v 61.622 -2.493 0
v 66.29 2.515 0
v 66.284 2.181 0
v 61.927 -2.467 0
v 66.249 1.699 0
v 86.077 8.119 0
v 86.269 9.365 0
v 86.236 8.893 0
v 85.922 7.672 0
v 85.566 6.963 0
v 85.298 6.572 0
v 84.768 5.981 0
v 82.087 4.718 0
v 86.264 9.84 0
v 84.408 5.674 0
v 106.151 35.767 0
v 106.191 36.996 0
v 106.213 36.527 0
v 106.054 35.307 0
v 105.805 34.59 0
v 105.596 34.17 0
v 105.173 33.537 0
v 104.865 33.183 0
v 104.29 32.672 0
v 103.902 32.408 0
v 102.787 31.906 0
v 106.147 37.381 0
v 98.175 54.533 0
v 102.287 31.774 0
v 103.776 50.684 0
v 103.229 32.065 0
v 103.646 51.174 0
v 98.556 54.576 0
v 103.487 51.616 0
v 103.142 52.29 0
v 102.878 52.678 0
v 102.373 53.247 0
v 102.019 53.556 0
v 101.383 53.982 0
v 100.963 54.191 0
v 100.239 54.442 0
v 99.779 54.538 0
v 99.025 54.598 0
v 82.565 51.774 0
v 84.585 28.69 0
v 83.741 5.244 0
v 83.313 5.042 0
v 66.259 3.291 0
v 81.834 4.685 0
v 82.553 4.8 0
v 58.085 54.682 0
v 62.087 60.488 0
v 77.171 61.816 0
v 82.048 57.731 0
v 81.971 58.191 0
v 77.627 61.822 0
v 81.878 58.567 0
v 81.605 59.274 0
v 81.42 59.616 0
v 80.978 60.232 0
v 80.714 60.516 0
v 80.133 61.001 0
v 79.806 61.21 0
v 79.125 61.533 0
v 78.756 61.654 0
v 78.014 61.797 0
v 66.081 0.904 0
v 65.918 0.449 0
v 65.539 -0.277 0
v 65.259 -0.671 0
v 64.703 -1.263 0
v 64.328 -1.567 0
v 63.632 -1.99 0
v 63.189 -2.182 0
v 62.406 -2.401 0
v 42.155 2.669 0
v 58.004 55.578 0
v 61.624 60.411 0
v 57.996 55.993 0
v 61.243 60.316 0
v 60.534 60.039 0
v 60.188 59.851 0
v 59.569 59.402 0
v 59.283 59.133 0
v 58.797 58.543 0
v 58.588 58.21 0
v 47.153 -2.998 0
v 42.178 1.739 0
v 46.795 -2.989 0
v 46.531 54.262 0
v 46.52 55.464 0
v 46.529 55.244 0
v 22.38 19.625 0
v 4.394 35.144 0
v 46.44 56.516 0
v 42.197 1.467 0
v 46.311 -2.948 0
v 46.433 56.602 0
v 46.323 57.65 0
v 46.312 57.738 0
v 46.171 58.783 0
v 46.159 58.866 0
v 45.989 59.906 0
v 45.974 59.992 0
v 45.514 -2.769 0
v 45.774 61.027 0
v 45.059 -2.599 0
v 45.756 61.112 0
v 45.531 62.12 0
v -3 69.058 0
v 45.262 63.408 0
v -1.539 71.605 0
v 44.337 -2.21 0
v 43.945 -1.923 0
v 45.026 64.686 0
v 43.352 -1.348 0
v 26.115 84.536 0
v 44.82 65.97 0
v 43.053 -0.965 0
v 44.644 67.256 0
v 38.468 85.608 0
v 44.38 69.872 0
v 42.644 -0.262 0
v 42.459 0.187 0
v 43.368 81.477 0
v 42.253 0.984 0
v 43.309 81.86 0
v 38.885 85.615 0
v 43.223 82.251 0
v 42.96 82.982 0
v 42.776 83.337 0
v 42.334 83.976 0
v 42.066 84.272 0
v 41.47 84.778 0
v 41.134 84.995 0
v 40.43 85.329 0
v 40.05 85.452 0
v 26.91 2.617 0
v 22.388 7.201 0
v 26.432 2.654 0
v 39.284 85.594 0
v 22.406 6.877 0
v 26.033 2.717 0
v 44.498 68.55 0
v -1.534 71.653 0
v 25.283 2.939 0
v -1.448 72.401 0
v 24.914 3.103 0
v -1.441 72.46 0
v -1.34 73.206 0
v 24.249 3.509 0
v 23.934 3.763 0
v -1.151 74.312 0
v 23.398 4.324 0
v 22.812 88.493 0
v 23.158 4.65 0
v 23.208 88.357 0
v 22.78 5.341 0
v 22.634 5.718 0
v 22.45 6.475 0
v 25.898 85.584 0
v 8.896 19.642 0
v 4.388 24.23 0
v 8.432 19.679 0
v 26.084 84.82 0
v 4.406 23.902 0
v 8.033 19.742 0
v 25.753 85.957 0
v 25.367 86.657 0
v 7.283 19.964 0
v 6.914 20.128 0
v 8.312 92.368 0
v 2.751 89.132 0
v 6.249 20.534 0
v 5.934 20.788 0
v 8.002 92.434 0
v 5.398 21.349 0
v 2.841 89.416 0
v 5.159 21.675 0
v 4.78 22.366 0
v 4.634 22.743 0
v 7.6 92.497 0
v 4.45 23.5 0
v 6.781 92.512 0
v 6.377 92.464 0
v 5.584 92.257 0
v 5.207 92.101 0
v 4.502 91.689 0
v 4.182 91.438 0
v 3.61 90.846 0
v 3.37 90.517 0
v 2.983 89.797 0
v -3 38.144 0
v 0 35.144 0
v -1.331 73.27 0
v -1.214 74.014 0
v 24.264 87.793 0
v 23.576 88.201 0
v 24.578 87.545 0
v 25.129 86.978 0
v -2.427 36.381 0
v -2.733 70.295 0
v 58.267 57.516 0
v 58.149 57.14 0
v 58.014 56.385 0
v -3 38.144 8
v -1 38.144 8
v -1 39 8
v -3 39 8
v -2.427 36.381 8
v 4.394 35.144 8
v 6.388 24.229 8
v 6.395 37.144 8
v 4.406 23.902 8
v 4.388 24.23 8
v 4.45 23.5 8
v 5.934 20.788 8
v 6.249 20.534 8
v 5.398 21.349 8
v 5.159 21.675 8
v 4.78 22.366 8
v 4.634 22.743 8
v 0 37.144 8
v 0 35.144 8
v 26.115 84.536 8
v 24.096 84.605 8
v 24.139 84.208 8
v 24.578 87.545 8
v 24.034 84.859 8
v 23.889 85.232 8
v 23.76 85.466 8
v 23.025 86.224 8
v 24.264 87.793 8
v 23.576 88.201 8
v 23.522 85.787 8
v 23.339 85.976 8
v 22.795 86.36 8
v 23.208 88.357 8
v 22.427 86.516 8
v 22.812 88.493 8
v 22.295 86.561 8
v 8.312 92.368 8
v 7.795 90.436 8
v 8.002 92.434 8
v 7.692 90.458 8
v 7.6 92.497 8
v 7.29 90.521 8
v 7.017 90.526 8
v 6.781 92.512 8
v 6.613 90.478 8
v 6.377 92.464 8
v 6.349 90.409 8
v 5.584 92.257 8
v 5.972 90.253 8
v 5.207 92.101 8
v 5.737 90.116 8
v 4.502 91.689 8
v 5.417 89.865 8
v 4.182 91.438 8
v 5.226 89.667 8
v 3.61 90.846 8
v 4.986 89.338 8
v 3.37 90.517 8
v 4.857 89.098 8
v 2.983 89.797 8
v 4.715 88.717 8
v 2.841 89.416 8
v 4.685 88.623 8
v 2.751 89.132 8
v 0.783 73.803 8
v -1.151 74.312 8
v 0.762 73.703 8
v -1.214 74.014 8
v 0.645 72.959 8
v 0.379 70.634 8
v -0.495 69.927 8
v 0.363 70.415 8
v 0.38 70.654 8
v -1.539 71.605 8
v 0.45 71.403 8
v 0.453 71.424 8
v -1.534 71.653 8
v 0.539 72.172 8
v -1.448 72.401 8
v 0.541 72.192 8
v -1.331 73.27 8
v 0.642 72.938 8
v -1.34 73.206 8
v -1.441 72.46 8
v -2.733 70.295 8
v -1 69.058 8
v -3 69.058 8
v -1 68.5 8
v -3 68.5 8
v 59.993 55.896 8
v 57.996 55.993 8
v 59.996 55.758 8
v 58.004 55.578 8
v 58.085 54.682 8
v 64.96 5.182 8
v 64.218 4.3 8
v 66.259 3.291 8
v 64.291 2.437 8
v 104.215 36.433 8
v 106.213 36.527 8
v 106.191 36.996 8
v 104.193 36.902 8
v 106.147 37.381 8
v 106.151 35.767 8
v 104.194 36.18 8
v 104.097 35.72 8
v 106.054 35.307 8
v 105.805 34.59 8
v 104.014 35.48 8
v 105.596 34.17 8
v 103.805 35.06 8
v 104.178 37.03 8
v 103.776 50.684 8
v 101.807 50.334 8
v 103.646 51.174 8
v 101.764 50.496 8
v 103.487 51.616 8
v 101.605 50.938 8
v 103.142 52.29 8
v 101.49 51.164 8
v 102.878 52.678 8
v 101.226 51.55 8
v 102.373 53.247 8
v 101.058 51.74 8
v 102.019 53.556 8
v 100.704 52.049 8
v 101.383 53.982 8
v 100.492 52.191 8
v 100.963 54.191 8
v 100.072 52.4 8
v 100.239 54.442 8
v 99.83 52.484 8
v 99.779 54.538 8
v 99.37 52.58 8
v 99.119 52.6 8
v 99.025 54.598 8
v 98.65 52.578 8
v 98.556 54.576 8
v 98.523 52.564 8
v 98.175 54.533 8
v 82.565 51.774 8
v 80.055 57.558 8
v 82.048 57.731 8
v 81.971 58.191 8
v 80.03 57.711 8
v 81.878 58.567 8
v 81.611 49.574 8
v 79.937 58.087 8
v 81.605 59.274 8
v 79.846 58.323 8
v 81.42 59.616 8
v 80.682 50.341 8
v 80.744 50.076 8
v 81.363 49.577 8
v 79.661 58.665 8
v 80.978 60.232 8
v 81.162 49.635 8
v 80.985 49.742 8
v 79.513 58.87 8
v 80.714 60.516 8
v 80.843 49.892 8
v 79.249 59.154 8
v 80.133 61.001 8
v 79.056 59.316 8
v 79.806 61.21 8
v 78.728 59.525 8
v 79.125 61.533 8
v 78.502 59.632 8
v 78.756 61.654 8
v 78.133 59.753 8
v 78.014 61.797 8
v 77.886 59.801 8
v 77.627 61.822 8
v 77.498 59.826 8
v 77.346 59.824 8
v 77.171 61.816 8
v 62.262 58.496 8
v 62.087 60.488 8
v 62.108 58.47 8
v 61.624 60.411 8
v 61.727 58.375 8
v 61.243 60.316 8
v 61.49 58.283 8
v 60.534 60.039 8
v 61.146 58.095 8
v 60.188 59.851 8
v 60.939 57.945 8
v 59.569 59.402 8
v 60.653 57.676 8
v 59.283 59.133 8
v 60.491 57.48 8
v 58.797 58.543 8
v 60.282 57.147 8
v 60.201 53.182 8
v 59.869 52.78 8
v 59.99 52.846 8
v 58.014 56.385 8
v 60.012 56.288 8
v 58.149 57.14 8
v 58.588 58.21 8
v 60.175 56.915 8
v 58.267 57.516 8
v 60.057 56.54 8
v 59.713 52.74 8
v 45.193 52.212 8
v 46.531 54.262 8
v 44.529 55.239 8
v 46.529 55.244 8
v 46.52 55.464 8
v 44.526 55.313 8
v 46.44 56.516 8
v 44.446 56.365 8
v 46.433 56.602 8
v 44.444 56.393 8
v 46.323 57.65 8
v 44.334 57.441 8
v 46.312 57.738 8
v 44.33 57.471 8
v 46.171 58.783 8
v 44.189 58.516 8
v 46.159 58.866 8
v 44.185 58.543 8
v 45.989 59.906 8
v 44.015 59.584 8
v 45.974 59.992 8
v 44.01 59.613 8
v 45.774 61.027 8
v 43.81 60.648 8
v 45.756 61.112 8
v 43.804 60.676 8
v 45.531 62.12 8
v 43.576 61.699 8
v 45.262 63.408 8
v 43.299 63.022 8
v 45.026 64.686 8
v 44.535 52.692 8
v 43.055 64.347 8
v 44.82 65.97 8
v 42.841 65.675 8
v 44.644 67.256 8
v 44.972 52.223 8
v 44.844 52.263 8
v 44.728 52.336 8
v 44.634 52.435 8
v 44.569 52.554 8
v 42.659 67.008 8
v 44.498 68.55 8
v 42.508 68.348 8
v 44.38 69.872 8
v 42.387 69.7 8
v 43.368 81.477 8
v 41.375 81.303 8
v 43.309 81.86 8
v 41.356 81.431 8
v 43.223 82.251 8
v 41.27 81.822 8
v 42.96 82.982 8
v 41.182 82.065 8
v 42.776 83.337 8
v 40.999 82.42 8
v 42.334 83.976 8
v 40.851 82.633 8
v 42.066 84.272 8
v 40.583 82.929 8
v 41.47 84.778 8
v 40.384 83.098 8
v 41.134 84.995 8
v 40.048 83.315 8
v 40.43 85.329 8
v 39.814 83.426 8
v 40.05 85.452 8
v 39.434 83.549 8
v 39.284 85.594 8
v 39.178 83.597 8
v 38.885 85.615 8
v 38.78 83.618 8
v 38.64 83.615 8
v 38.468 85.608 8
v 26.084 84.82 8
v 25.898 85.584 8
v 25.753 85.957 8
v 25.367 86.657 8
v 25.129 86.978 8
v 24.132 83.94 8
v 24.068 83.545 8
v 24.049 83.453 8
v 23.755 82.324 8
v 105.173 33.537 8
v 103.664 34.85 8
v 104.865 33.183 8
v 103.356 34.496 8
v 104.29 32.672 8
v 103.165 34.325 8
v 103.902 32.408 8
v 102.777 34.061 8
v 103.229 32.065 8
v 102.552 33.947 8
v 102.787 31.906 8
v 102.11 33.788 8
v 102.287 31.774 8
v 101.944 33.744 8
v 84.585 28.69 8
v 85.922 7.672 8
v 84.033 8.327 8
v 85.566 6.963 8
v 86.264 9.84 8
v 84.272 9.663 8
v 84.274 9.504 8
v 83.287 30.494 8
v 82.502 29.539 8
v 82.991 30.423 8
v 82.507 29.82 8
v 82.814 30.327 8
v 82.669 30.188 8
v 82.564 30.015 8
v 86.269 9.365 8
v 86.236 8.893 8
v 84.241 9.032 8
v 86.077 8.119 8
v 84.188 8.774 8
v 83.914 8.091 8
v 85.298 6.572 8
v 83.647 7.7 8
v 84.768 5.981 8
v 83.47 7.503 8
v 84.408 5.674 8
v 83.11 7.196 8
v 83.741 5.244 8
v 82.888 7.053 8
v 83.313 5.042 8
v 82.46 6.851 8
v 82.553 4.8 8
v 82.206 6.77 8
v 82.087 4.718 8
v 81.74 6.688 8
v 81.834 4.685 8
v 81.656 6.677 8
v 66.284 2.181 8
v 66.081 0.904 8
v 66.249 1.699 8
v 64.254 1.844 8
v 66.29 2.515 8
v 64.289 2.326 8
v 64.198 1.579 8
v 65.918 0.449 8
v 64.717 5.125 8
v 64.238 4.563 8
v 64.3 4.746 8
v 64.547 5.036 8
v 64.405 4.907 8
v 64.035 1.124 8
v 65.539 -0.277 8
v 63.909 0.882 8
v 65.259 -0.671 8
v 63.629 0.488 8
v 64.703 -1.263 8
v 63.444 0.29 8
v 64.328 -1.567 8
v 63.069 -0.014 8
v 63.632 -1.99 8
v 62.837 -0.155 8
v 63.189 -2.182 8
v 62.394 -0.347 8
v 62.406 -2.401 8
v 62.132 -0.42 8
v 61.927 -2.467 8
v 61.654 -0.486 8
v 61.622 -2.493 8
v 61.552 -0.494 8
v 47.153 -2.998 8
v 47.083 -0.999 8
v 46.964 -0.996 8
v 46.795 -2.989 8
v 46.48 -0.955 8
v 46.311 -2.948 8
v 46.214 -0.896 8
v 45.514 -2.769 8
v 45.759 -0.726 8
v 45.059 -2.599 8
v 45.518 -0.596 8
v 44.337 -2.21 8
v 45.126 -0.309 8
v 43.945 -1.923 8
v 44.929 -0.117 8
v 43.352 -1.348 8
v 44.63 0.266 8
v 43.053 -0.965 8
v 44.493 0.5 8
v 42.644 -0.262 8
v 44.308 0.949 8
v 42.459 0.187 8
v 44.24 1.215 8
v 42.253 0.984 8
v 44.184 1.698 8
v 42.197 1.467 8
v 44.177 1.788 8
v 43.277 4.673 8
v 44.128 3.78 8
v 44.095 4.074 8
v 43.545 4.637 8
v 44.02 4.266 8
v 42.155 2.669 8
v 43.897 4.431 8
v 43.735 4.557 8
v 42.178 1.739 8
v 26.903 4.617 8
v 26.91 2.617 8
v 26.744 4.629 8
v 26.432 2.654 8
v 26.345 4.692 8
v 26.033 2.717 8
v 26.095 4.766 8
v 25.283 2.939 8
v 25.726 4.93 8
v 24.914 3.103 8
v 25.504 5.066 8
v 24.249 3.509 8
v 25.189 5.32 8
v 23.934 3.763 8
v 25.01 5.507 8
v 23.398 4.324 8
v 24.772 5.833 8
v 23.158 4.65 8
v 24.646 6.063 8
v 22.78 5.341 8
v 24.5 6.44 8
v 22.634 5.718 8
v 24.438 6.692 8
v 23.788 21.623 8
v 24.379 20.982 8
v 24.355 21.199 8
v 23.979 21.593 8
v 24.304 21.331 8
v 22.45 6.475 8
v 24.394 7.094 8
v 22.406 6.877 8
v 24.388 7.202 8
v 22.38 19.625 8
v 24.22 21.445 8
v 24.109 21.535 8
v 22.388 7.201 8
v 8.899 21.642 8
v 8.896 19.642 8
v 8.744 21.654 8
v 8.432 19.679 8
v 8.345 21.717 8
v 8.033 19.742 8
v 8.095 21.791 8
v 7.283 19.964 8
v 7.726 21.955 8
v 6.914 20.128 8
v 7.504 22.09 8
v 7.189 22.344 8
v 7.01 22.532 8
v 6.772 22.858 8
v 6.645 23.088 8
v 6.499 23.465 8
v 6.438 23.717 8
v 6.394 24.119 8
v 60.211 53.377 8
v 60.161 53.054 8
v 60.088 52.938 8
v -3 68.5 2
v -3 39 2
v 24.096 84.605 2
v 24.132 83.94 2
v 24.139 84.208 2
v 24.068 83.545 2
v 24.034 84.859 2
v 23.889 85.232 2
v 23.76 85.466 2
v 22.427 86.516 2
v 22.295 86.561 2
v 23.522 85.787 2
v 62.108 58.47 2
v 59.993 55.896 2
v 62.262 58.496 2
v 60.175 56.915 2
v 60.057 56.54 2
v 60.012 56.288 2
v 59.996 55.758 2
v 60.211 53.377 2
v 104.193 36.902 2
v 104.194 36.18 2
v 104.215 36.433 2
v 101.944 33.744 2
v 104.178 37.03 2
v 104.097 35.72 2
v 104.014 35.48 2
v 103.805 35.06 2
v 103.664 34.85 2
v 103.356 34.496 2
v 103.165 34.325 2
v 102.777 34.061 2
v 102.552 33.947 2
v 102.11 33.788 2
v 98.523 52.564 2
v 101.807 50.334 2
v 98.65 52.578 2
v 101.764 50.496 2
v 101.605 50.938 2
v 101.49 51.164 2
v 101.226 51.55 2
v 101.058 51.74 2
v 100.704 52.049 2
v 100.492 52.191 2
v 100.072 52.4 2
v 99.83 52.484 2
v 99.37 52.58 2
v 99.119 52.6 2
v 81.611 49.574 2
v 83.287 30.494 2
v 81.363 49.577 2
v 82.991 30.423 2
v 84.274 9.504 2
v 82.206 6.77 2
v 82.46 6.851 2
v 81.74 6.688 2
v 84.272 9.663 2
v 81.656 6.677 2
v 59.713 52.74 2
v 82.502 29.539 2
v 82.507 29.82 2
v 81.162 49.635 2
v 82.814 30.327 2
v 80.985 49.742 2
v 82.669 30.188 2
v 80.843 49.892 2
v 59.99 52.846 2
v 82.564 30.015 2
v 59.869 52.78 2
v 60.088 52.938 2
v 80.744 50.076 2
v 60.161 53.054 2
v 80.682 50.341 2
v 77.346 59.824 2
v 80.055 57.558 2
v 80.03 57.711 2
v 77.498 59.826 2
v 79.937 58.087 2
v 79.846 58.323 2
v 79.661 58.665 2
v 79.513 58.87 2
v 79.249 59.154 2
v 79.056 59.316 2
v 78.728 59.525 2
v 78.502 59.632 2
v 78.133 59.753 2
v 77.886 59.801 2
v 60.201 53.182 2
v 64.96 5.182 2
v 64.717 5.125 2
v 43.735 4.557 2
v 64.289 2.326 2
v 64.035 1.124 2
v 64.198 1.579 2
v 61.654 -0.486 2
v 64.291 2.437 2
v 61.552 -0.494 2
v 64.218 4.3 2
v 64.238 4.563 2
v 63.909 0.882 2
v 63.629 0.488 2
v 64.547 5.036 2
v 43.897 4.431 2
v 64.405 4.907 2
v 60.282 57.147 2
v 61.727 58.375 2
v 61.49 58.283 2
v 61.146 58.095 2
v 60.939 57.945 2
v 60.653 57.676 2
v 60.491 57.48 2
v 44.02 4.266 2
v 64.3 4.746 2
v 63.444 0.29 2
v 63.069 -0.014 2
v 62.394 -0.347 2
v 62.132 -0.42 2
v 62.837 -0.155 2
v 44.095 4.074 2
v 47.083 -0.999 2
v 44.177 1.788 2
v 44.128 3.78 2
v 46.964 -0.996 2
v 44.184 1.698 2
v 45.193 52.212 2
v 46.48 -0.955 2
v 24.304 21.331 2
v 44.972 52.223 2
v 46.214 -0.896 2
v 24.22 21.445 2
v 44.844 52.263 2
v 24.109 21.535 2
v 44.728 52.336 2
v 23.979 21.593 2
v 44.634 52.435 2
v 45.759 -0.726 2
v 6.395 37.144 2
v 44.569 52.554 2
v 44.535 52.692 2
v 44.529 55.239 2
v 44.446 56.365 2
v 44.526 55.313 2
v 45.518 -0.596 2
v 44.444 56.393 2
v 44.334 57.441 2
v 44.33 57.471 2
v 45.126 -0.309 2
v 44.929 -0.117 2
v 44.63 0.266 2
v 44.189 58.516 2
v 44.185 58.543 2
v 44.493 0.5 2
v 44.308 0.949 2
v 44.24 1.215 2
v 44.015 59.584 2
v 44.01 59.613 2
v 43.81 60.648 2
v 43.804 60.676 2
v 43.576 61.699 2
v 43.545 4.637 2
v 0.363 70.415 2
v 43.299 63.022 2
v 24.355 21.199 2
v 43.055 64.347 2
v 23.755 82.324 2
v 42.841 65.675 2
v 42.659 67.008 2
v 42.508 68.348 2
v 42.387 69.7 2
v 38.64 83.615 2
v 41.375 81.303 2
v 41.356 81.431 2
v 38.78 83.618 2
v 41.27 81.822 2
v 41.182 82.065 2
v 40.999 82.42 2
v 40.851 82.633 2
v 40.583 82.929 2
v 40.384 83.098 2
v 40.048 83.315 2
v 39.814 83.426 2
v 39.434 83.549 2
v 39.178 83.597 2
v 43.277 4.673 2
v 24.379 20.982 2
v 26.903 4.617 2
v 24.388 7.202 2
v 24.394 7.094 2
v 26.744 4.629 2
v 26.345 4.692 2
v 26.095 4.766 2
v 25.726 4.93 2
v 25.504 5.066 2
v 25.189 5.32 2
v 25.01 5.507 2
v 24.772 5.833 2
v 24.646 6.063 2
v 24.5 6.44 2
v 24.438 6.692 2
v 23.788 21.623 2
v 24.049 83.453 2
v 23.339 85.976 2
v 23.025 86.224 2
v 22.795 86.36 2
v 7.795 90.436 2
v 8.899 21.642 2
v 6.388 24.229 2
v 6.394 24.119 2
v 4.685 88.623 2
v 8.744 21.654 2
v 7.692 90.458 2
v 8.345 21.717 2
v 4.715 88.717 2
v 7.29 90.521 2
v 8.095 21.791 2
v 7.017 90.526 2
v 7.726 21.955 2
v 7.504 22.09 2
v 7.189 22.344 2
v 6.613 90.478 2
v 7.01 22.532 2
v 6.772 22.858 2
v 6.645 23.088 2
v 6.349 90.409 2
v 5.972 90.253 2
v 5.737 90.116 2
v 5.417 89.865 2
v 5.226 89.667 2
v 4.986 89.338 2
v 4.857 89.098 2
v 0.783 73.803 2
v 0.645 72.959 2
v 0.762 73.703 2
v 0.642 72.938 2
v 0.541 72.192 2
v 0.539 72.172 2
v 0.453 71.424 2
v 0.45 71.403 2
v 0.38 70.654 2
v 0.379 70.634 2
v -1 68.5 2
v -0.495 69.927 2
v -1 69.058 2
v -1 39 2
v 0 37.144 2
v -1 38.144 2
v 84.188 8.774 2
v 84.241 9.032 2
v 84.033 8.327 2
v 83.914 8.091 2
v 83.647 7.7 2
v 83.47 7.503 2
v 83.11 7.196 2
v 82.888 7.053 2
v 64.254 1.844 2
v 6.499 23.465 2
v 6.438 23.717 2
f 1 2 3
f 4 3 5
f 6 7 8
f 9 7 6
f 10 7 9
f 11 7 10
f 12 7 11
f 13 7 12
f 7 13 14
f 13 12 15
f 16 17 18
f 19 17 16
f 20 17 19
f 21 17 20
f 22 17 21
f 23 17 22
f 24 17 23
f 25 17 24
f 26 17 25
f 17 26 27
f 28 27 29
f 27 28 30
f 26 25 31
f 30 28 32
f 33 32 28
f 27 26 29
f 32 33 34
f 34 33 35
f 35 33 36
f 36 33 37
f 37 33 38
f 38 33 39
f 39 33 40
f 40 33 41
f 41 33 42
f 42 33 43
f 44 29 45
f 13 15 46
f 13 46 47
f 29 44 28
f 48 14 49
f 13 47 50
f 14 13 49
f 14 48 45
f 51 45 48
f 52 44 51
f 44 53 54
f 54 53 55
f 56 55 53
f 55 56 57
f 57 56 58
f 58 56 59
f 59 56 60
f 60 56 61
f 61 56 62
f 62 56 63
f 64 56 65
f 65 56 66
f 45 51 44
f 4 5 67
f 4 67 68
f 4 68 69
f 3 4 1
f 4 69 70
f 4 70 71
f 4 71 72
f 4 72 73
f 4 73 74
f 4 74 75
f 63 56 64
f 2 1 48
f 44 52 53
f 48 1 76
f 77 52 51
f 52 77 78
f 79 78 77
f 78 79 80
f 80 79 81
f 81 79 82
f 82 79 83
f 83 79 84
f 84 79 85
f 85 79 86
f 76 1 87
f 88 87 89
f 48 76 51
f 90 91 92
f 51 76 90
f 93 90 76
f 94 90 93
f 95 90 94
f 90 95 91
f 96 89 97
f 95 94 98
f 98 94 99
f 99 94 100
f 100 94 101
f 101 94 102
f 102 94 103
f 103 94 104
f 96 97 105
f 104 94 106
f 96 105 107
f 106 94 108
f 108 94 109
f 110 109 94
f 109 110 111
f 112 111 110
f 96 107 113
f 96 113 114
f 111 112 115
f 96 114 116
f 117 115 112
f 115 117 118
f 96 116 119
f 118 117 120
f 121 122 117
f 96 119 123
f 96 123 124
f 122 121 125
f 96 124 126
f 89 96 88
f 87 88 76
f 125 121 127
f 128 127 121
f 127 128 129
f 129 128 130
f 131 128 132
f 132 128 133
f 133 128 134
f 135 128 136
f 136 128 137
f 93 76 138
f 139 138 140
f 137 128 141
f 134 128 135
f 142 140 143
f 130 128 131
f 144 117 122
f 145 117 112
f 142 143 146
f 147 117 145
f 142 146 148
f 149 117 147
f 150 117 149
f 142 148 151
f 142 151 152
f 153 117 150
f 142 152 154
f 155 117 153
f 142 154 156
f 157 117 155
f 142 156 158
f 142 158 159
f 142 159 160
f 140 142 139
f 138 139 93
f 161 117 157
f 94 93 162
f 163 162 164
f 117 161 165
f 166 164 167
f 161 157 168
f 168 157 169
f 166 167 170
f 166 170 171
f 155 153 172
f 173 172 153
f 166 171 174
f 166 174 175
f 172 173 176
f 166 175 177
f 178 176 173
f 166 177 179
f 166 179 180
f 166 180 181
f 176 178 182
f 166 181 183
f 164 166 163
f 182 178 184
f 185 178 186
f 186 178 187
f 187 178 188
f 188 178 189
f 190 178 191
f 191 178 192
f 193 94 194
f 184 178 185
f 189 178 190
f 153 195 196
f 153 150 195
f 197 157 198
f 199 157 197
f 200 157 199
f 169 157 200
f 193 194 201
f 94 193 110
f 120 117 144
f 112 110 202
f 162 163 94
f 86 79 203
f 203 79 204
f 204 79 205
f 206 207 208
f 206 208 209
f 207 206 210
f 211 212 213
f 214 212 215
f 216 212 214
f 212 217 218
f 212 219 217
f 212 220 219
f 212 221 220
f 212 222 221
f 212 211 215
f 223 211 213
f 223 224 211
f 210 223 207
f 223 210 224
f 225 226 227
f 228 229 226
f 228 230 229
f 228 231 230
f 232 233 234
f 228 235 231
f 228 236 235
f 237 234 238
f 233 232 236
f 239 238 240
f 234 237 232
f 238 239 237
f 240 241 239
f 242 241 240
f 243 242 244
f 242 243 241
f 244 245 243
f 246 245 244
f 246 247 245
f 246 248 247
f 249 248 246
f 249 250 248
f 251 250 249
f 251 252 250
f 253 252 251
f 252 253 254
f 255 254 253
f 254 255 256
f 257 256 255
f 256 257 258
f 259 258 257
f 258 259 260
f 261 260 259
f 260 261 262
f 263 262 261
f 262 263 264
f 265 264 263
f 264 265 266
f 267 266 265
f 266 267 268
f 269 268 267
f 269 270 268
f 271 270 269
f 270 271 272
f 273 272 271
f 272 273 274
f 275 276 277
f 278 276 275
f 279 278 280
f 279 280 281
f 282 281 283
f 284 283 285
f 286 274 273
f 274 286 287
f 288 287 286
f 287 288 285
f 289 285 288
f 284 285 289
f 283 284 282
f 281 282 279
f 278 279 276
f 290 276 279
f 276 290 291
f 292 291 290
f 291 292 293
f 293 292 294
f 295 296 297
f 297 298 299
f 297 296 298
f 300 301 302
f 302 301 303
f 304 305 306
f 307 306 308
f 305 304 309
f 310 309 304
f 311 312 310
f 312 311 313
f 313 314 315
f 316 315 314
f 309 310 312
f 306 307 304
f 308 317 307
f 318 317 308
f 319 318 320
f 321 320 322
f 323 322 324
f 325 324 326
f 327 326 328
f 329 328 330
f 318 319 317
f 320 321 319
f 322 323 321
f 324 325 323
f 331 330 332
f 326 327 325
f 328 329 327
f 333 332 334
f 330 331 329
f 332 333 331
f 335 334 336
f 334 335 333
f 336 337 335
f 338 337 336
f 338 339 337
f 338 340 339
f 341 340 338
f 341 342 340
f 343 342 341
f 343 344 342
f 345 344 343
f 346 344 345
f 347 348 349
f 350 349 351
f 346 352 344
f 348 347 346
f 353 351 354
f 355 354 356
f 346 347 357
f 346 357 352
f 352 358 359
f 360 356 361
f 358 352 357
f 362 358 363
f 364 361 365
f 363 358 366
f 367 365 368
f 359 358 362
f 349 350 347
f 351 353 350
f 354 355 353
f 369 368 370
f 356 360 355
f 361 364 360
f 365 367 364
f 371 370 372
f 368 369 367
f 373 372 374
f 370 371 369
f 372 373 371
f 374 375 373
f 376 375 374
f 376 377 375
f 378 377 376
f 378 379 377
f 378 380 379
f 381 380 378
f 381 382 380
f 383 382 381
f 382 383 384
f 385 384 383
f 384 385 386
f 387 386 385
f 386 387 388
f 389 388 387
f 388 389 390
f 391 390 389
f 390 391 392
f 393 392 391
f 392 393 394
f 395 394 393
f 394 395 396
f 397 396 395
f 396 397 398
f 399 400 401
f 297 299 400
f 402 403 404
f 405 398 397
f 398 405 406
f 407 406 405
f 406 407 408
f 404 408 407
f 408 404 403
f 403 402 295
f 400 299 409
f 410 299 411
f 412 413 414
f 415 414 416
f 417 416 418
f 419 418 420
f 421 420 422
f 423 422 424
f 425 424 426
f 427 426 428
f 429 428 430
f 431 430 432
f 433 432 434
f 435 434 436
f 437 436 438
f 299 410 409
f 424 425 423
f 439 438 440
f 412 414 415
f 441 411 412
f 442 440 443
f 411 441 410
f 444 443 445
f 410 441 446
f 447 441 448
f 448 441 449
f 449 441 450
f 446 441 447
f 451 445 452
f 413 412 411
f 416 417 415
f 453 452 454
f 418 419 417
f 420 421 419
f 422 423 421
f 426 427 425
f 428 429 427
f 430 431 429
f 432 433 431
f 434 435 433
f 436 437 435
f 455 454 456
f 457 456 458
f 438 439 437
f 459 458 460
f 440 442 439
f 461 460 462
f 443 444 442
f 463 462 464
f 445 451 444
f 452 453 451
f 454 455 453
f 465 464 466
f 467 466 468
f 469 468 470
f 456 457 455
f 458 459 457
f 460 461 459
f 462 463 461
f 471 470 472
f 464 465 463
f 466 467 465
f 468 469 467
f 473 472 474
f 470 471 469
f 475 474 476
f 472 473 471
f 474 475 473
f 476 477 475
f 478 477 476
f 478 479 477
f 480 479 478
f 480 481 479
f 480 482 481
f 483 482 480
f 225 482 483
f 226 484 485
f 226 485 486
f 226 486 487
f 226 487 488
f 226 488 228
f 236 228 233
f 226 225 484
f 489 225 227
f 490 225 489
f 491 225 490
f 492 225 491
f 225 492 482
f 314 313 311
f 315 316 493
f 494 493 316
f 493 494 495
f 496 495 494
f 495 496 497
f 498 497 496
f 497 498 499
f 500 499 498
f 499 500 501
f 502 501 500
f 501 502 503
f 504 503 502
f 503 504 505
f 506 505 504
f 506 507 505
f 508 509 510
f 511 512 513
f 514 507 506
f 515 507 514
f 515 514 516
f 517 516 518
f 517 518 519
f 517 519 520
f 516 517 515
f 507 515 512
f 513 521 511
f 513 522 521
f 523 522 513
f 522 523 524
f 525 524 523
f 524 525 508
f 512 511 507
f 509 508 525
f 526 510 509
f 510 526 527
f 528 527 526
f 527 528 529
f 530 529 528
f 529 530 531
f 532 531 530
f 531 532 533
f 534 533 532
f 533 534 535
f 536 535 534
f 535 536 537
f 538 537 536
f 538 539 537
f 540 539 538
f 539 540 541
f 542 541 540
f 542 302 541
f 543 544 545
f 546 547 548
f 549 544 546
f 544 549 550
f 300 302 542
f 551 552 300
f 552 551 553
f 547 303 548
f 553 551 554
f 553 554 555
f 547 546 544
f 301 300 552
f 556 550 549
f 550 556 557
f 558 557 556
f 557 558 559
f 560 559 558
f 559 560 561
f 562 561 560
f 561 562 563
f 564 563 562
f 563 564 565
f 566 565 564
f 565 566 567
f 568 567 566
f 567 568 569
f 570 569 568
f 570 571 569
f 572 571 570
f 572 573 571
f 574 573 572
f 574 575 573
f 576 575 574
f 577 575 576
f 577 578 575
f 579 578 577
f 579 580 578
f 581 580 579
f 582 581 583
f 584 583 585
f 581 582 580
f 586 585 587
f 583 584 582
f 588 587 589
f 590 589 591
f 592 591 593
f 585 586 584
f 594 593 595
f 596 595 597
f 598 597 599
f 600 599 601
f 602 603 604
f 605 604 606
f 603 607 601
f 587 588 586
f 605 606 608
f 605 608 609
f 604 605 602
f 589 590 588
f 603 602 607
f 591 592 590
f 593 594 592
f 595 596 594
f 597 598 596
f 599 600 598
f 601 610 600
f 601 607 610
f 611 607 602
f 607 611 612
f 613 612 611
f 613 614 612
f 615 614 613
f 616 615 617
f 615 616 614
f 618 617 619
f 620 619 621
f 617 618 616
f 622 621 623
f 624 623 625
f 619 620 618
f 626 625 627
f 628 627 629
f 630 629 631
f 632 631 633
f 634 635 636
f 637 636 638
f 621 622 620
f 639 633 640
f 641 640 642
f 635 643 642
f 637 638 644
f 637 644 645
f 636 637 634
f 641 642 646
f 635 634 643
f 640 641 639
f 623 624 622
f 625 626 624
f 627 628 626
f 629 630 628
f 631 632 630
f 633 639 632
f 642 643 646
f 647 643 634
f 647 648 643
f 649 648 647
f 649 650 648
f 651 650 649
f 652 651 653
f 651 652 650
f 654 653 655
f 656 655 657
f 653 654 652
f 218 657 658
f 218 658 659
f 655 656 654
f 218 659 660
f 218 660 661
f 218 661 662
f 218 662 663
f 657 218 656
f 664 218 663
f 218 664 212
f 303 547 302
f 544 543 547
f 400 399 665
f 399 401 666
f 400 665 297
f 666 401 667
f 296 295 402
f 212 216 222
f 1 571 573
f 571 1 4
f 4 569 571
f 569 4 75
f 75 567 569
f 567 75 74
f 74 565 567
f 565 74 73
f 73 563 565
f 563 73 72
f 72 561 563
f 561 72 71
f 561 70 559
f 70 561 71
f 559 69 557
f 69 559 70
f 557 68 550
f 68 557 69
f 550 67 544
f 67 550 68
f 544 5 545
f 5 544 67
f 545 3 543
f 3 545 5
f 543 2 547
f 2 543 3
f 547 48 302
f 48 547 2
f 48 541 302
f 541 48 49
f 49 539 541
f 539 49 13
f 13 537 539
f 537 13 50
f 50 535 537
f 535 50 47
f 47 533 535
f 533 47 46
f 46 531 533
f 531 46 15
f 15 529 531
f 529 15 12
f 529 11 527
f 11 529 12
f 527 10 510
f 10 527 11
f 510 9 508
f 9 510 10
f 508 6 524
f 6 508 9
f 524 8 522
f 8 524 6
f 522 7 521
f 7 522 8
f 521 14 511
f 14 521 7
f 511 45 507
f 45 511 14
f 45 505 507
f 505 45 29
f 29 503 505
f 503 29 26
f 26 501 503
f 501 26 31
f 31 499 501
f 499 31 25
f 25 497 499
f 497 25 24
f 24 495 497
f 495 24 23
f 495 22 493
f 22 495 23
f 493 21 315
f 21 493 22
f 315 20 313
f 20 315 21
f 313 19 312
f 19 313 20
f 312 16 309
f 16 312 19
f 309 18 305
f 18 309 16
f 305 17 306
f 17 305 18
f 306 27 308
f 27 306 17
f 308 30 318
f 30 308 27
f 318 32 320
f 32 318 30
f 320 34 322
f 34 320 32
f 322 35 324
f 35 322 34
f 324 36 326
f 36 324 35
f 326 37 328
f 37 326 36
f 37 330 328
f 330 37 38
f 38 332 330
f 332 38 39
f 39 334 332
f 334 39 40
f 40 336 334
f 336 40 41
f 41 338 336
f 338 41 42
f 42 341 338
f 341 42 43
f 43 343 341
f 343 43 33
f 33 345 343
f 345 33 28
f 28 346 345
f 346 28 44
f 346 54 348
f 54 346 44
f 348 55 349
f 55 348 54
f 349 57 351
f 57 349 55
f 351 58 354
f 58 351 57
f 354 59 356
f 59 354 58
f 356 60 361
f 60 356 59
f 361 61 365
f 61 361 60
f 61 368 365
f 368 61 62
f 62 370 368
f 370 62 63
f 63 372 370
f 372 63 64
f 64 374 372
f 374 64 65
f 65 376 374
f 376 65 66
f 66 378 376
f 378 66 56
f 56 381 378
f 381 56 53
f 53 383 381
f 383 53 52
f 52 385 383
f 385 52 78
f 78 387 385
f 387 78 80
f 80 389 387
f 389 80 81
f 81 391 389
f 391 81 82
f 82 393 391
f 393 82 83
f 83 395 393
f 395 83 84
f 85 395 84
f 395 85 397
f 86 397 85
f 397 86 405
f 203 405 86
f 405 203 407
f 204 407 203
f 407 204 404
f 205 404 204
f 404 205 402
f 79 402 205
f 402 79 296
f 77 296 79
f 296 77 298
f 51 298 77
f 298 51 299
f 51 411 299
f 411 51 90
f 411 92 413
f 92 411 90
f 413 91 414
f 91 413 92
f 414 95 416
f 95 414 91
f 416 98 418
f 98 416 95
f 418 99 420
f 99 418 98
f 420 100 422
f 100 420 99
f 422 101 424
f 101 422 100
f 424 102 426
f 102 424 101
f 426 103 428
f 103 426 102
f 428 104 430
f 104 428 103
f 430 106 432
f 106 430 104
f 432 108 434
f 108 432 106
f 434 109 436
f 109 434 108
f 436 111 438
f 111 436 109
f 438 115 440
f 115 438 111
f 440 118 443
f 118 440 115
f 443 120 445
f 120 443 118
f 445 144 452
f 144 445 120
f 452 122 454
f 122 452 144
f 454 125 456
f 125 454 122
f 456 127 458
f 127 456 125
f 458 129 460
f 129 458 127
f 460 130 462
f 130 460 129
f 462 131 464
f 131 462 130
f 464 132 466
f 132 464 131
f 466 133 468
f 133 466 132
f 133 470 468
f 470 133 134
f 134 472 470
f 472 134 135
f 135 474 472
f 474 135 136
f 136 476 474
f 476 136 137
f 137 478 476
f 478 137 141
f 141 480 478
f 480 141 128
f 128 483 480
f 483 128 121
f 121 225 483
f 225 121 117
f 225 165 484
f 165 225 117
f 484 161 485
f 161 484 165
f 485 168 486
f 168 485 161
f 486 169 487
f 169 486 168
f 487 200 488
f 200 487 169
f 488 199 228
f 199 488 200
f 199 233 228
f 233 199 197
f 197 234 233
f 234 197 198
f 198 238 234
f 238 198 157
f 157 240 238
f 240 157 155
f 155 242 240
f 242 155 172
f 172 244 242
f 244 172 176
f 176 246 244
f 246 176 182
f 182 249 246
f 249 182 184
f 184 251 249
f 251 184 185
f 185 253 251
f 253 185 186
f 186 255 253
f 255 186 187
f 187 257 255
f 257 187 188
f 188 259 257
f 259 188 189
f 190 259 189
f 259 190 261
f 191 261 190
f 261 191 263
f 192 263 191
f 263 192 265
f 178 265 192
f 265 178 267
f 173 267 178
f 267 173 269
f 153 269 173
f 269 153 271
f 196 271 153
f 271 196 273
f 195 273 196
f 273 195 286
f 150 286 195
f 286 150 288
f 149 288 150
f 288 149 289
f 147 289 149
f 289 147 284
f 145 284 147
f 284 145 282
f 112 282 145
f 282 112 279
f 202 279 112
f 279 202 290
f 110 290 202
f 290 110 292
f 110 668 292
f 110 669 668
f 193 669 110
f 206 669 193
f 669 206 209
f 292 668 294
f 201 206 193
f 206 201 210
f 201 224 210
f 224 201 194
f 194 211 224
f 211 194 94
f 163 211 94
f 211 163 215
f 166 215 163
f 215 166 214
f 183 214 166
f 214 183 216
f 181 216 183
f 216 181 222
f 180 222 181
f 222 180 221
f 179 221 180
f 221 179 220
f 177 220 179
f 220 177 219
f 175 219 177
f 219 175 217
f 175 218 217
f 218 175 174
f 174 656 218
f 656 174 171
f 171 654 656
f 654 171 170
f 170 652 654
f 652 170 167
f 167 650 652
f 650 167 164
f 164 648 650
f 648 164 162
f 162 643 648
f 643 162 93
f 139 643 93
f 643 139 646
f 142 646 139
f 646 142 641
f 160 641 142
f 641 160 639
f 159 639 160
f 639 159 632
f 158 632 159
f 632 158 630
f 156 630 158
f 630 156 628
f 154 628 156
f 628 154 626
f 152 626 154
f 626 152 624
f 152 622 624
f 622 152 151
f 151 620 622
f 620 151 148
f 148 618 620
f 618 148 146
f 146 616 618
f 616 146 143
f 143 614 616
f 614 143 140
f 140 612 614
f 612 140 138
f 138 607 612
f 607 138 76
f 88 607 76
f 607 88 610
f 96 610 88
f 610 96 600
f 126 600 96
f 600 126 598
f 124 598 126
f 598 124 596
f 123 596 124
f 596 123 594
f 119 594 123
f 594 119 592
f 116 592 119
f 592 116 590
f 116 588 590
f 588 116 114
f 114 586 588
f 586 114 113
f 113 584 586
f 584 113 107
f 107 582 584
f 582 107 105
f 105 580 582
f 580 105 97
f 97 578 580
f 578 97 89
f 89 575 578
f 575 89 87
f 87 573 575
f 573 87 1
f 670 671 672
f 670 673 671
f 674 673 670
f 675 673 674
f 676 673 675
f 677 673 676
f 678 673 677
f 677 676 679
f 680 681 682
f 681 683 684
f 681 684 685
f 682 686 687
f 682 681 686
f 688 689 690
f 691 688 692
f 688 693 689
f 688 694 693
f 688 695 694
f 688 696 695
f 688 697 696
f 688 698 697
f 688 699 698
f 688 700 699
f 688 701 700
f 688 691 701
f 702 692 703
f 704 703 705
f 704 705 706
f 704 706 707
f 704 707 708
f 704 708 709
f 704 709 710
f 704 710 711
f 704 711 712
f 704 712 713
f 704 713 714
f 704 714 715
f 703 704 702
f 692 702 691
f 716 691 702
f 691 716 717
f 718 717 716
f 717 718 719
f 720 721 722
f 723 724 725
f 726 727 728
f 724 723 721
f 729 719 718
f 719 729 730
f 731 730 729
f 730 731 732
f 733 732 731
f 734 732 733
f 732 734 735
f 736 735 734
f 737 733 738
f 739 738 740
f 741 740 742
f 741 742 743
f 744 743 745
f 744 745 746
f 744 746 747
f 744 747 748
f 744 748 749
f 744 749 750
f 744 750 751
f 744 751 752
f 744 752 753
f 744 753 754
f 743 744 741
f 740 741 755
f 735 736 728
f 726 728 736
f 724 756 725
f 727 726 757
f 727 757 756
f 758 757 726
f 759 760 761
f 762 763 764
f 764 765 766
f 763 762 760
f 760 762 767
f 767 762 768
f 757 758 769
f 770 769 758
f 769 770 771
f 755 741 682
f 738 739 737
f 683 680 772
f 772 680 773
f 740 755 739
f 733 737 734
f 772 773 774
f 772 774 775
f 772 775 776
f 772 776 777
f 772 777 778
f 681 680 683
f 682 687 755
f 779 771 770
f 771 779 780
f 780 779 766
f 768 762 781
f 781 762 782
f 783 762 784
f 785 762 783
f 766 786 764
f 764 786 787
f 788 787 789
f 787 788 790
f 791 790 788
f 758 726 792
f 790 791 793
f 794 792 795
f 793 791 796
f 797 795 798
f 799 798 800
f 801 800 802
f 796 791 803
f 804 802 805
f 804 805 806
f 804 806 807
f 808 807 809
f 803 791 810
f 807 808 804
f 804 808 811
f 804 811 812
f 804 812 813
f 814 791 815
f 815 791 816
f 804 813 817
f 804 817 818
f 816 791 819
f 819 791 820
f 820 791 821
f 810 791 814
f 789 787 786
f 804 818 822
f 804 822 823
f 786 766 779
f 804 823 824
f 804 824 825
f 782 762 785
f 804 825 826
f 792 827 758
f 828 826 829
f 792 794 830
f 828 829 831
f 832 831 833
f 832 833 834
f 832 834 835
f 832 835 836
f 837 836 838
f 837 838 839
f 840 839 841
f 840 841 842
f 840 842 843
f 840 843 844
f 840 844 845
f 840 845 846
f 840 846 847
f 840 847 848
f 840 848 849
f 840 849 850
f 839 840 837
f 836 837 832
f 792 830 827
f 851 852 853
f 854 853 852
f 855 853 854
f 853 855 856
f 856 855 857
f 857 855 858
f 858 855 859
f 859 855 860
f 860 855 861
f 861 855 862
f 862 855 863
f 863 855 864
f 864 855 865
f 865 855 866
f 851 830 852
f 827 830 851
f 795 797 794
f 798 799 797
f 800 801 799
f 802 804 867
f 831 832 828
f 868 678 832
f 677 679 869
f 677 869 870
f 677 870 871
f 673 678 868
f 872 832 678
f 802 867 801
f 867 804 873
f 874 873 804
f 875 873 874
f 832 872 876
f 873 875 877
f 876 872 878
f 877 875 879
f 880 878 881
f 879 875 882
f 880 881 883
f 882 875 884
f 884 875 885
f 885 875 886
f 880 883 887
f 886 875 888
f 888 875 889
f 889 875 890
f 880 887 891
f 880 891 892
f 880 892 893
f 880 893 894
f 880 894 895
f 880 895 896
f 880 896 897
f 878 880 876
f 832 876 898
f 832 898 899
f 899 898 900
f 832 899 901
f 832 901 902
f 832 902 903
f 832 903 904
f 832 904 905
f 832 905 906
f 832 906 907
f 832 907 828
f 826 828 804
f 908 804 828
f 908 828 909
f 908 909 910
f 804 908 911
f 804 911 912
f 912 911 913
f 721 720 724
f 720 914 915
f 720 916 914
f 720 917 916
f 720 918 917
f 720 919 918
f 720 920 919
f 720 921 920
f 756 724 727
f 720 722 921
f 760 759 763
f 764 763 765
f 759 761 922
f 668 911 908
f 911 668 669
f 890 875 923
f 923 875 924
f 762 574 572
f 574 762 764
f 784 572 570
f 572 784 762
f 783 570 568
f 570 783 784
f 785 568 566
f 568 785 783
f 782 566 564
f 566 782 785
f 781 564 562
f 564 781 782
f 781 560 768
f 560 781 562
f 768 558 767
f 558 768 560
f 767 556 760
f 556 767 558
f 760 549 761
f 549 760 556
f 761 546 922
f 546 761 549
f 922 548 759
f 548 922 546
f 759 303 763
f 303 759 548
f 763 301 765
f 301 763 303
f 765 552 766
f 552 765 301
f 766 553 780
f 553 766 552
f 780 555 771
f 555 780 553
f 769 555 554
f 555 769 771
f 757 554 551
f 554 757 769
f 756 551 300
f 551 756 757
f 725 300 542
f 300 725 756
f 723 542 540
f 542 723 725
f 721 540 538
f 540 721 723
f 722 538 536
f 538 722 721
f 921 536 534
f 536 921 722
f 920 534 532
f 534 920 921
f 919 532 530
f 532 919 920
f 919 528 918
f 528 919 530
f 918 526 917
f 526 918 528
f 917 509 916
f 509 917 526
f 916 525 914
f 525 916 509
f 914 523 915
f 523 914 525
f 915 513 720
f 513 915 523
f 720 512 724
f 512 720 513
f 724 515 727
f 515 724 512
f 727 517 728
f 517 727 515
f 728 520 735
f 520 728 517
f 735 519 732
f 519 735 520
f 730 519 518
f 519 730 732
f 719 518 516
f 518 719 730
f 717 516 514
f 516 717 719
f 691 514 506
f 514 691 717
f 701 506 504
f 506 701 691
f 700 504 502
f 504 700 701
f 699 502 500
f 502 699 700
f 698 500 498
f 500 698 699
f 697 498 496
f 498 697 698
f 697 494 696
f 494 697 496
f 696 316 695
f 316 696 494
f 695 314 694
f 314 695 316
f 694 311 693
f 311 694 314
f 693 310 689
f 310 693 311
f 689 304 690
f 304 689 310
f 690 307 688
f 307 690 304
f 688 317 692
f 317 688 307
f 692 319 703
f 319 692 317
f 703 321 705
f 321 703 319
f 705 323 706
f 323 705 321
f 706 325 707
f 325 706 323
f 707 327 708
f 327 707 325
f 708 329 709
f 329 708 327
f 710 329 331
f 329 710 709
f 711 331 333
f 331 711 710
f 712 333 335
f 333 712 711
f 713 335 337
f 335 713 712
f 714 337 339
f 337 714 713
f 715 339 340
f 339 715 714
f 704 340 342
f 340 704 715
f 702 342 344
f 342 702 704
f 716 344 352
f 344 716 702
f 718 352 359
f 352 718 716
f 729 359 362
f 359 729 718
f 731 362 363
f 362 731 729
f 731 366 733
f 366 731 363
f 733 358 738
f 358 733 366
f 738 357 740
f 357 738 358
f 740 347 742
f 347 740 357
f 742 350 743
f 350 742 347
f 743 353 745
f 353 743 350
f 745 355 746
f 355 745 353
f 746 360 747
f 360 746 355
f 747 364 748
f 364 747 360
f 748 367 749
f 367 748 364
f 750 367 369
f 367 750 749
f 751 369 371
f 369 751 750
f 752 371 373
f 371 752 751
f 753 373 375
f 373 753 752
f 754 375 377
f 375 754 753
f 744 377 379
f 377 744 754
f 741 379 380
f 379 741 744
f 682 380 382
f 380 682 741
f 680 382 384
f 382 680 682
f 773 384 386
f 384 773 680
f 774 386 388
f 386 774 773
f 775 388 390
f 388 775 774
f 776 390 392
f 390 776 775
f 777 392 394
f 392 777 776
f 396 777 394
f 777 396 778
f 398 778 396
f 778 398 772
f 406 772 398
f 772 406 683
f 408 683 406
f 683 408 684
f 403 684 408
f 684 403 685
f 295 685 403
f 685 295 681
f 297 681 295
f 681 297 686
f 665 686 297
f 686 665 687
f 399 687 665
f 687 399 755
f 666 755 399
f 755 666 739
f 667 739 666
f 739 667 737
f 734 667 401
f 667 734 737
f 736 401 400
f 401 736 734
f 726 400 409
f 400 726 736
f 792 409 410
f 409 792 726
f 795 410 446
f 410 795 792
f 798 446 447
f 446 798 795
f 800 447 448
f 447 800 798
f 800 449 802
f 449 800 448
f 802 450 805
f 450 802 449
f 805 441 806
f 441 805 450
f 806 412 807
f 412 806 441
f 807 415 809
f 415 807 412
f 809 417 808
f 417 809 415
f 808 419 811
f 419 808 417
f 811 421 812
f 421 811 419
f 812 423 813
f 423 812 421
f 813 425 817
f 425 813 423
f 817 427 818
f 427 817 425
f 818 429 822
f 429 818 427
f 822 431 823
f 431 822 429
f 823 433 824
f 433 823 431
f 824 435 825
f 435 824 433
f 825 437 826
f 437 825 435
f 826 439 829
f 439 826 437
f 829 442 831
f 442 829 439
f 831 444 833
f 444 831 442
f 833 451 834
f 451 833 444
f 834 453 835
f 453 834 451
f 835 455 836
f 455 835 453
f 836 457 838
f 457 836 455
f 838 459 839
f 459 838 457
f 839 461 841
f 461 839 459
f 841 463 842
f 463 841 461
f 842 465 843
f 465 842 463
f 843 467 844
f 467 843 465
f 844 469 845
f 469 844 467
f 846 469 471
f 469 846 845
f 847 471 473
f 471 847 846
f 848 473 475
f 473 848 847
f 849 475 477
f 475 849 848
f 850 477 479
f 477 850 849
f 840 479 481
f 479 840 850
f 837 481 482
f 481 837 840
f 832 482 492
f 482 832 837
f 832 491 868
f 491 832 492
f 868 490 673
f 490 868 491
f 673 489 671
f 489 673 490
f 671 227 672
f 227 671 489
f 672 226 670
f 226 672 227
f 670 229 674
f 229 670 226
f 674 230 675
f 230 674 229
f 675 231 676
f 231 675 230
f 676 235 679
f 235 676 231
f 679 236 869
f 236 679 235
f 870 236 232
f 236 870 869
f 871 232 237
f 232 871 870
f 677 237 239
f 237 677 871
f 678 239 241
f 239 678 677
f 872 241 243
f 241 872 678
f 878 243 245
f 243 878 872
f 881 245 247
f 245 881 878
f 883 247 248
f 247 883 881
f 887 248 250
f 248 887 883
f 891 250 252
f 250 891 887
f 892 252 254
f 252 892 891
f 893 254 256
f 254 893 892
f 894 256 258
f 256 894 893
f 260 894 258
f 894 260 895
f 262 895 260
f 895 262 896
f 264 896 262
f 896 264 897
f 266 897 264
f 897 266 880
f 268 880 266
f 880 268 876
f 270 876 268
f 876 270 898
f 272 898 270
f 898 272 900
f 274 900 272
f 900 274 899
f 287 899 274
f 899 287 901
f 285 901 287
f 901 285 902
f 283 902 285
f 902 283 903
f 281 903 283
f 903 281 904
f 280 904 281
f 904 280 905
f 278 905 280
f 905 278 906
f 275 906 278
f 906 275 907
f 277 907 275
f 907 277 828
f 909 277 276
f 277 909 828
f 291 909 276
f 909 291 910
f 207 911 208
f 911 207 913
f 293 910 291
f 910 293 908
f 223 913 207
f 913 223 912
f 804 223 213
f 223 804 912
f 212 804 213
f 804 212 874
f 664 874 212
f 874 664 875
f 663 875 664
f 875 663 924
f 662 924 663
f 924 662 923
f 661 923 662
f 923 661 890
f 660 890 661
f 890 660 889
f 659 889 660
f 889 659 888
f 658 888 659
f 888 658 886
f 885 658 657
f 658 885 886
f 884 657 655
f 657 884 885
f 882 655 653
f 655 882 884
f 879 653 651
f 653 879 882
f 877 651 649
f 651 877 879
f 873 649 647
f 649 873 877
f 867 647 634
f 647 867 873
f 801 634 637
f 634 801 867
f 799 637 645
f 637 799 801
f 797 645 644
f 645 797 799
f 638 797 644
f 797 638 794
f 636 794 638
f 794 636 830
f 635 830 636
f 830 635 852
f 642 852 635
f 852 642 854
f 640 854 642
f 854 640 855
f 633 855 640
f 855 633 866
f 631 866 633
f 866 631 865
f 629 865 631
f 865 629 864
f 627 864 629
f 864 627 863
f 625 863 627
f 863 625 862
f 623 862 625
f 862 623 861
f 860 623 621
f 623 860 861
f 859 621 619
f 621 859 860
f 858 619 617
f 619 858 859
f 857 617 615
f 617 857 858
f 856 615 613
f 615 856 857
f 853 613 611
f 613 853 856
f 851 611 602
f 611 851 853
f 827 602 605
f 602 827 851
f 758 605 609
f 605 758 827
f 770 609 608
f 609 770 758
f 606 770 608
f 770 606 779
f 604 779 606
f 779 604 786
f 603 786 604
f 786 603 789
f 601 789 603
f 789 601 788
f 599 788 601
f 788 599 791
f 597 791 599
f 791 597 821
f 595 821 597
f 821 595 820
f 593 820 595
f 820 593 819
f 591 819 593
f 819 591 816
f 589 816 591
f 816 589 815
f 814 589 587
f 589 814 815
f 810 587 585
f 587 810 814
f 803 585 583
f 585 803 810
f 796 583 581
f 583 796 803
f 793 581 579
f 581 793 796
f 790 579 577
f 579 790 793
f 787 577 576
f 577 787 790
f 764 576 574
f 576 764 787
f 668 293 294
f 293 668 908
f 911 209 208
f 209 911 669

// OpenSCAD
// Smallcat Split Keyboard Case - Left Half
// Tray-style case design
// PCB outline extracted from KiCad

// Parameters
wall_thickness = 2;        // Wall thickness in mm
case_depth = 8;            // Total case depth in mm
pcb_thickness = 1.6;       // PCB thickness in mm
pcb_clearance = 1;         // Clearance around PCB in mm
bottom_thickness = 2;      // Bottom plate thickness in mm

// Connector edge cutout parameters (clears entire edge for USB + TRRS)
connector_cutout_start = 39;   // Y start position
connector_cutout_end = 68.5;     // Y end position

// PCB outline points (left half)
pcb_outline = [
    [103.194, 36.855],
    [103.216, 36.386],
    [103.119, 35.926],
    [102.910, 35.506],
    [102.602, 35.152],
    [102.214, 34.888],
    [101.772, 34.729],
    [83.084, 31.474],
    [82.630, 31.365],
    [82.219, 31.142],
    [81.882, 30.819],
    [81.640, 30.420],
    [81.510, 29.971],
    [81.501, 29.504],
    [83.276, 9.574],
    [83.243, 9.102],
    [83.088, 8.655],
    [82.821, 8.264],
    [82.461, 7.957],
    [82.033, 7.755],
    [81.567, 7.673],
    [64.800, 6.172],
    [64.365, 6.070],
    [63.969, 5.862],
    [63.638, 5.561],
    [63.393, 5.187],
    [63.250, 4.763],
    [63.217, 4.317],
    [63.292, 2.398],
    [63.257, 1.916],
    [63.094, 1.461],
    [62.814, 1.067],
    [62.439, 0.763],
    [61.996, 0.571],
    [61.517, 0.505],
    [47.048, 0.000],
    [46.564, 0.041],
    [46.109, 0.211],
    [45.717, 0.498],
    [45.418, 0.881],
    [45.233, 1.330],
    [45.177, 1.813],
    [45.127, 3.848],
    [45.074, 4.318],
    [44.901, 4.757],
    [44.618, 5.136],
    [44.246, 5.427],
    [43.810, 5.610],
    [43.342, 5.673],
    [26.900, 5.617],
    [26.501, 5.680],
    [26.132, 5.844],
    [25.817, 6.098],
    [25.578, 6.424],
    [25.432, 6.801],
    [25.388, 7.203],
    [25.379, 21.037],
    [25.335, 21.439],
    [25.188, 21.816],
    [24.950, 22.142],
    [24.635, 22.395],
    [24.266, 22.560],
    [23.867, 22.623],
    [8.900, 22.642],
    [8.501, 22.705],
    [8.132, 22.869],
    [7.817, 23.123],
    [7.578, 23.449],
    [7.432, 23.826],
    [7.388, 24.228],
    [7.396, 38.144],
    [0.000, 38.144],
    [0.000, 69.058],
    [1.321, 69.810],
    [1.376, 70.561],
    [1.446, 71.310],
    [1.532, 72.058],
    [1.633, 72.804],
    [1.750, 73.548],
    [5.652, 88.368],
    [5.794, 88.749],
    [6.034, 89.078],
    [6.354, 89.329],
    [6.731, 89.485],
    [7.135, 89.533],
    [7.537, 89.470],
    [22.037, 85.595],
    [22.405, 85.439],
    [22.719, 85.191],
    [22.957, 84.870],
    [23.102, 84.497],
    [23.145, 84.100],
    [23.081, 83.705],
    [22.431, 81.205],
    [38.727, 82.619],
    [39.126, 82.598],
    [39.506, 82.475],
    [39.842, 82.258],
    [40.110, 81.962],
    [40.293, 81.607],
    [40.379, 81.216],
    [41.391, 69.611],
    [41.513, 68.247],
    [41.667, 66.885],
    [41.852, 65.528],
    [42.070, 64.176],
    [42.318, 62.829],
    [42.598, 61.488],
    [42.828, 60.458],
    [43.028, 59.423],
    [43.198, 58.382],
    [43.339, 57.337],
    [43.449, 56.289],
    [43.529, 55.237],
    [43.535, 52.568],
    [43.630, 52.187],
    [43.819, 51.842],
    [44.088, 51.557],
    [44.421, 51.348],
    [44.795, 51.230],
    [45.187, 51.211],
    [59.855, 51.745],
    [60.236, 51.841],
    [60.581, 52.029],
    [60.867, 52.298],
    [61.076, 52.631],
    [61.194, 53.005],
    [61.213, 53.398],
    [60.992, 55.848],
    [61.011, 56.240],
    [61.129, 56.615],
    [61.338, 56.948],
    [61.624, 57.217],
    [61.969, 57.405],
    [62.350, 57.500],
    [77.434, 58.828],
    [77.821, 58.803],
    [78.190, 58.682],
    [78.517, 58.473],
    [78.781, 58.189],
    [78.966, 57.847],
    [79.059, 57.471],
    [79.692, 50.183],
    [79.800, 49.720],
    [80.025, 49.301],
    [80.352, 48.956],
    [80.759, 48.710],
    [81.216, 48.579],
    [81.692, 48.573],
    [98.697, 51.579],
    [99.166, 51.601],
    [99.626, 51.505],
    [100.046, 51.296],
    [100.400, 50.987],
    [100.664, 50.600],
    [100.823, 50.158]
];

// Connector edge cutout module (clears entire inner edge section for USB + TRRS)
module connector_cutout() {
    cutout_length = connector_cutout_end - connector_cutout_start;
    translate([-5, connector_cutout_start, bottom_thickness])
        cube([wall_thickness + 10, cutout_length, case_depth]);
}

// Main case module
module case_bottom() {
    difference() {
        // Outer shell
        linear_extrude(height=case_depth)
            offset(r=wall_thickness + pcb_clearance)
                polygon(pcb_outline);

        // Inner cavity for PCB
        translate([0, 0, bottom_thickness])
            linear_extrude(height=case_depth)
                offset(r=pcb_clearance)
                    polygon(pcb_outline);

        // Connector edge cutout (USB-C + TRRS area)
        connector_cutout();
    }
}

// Render the case
case_bottom();
